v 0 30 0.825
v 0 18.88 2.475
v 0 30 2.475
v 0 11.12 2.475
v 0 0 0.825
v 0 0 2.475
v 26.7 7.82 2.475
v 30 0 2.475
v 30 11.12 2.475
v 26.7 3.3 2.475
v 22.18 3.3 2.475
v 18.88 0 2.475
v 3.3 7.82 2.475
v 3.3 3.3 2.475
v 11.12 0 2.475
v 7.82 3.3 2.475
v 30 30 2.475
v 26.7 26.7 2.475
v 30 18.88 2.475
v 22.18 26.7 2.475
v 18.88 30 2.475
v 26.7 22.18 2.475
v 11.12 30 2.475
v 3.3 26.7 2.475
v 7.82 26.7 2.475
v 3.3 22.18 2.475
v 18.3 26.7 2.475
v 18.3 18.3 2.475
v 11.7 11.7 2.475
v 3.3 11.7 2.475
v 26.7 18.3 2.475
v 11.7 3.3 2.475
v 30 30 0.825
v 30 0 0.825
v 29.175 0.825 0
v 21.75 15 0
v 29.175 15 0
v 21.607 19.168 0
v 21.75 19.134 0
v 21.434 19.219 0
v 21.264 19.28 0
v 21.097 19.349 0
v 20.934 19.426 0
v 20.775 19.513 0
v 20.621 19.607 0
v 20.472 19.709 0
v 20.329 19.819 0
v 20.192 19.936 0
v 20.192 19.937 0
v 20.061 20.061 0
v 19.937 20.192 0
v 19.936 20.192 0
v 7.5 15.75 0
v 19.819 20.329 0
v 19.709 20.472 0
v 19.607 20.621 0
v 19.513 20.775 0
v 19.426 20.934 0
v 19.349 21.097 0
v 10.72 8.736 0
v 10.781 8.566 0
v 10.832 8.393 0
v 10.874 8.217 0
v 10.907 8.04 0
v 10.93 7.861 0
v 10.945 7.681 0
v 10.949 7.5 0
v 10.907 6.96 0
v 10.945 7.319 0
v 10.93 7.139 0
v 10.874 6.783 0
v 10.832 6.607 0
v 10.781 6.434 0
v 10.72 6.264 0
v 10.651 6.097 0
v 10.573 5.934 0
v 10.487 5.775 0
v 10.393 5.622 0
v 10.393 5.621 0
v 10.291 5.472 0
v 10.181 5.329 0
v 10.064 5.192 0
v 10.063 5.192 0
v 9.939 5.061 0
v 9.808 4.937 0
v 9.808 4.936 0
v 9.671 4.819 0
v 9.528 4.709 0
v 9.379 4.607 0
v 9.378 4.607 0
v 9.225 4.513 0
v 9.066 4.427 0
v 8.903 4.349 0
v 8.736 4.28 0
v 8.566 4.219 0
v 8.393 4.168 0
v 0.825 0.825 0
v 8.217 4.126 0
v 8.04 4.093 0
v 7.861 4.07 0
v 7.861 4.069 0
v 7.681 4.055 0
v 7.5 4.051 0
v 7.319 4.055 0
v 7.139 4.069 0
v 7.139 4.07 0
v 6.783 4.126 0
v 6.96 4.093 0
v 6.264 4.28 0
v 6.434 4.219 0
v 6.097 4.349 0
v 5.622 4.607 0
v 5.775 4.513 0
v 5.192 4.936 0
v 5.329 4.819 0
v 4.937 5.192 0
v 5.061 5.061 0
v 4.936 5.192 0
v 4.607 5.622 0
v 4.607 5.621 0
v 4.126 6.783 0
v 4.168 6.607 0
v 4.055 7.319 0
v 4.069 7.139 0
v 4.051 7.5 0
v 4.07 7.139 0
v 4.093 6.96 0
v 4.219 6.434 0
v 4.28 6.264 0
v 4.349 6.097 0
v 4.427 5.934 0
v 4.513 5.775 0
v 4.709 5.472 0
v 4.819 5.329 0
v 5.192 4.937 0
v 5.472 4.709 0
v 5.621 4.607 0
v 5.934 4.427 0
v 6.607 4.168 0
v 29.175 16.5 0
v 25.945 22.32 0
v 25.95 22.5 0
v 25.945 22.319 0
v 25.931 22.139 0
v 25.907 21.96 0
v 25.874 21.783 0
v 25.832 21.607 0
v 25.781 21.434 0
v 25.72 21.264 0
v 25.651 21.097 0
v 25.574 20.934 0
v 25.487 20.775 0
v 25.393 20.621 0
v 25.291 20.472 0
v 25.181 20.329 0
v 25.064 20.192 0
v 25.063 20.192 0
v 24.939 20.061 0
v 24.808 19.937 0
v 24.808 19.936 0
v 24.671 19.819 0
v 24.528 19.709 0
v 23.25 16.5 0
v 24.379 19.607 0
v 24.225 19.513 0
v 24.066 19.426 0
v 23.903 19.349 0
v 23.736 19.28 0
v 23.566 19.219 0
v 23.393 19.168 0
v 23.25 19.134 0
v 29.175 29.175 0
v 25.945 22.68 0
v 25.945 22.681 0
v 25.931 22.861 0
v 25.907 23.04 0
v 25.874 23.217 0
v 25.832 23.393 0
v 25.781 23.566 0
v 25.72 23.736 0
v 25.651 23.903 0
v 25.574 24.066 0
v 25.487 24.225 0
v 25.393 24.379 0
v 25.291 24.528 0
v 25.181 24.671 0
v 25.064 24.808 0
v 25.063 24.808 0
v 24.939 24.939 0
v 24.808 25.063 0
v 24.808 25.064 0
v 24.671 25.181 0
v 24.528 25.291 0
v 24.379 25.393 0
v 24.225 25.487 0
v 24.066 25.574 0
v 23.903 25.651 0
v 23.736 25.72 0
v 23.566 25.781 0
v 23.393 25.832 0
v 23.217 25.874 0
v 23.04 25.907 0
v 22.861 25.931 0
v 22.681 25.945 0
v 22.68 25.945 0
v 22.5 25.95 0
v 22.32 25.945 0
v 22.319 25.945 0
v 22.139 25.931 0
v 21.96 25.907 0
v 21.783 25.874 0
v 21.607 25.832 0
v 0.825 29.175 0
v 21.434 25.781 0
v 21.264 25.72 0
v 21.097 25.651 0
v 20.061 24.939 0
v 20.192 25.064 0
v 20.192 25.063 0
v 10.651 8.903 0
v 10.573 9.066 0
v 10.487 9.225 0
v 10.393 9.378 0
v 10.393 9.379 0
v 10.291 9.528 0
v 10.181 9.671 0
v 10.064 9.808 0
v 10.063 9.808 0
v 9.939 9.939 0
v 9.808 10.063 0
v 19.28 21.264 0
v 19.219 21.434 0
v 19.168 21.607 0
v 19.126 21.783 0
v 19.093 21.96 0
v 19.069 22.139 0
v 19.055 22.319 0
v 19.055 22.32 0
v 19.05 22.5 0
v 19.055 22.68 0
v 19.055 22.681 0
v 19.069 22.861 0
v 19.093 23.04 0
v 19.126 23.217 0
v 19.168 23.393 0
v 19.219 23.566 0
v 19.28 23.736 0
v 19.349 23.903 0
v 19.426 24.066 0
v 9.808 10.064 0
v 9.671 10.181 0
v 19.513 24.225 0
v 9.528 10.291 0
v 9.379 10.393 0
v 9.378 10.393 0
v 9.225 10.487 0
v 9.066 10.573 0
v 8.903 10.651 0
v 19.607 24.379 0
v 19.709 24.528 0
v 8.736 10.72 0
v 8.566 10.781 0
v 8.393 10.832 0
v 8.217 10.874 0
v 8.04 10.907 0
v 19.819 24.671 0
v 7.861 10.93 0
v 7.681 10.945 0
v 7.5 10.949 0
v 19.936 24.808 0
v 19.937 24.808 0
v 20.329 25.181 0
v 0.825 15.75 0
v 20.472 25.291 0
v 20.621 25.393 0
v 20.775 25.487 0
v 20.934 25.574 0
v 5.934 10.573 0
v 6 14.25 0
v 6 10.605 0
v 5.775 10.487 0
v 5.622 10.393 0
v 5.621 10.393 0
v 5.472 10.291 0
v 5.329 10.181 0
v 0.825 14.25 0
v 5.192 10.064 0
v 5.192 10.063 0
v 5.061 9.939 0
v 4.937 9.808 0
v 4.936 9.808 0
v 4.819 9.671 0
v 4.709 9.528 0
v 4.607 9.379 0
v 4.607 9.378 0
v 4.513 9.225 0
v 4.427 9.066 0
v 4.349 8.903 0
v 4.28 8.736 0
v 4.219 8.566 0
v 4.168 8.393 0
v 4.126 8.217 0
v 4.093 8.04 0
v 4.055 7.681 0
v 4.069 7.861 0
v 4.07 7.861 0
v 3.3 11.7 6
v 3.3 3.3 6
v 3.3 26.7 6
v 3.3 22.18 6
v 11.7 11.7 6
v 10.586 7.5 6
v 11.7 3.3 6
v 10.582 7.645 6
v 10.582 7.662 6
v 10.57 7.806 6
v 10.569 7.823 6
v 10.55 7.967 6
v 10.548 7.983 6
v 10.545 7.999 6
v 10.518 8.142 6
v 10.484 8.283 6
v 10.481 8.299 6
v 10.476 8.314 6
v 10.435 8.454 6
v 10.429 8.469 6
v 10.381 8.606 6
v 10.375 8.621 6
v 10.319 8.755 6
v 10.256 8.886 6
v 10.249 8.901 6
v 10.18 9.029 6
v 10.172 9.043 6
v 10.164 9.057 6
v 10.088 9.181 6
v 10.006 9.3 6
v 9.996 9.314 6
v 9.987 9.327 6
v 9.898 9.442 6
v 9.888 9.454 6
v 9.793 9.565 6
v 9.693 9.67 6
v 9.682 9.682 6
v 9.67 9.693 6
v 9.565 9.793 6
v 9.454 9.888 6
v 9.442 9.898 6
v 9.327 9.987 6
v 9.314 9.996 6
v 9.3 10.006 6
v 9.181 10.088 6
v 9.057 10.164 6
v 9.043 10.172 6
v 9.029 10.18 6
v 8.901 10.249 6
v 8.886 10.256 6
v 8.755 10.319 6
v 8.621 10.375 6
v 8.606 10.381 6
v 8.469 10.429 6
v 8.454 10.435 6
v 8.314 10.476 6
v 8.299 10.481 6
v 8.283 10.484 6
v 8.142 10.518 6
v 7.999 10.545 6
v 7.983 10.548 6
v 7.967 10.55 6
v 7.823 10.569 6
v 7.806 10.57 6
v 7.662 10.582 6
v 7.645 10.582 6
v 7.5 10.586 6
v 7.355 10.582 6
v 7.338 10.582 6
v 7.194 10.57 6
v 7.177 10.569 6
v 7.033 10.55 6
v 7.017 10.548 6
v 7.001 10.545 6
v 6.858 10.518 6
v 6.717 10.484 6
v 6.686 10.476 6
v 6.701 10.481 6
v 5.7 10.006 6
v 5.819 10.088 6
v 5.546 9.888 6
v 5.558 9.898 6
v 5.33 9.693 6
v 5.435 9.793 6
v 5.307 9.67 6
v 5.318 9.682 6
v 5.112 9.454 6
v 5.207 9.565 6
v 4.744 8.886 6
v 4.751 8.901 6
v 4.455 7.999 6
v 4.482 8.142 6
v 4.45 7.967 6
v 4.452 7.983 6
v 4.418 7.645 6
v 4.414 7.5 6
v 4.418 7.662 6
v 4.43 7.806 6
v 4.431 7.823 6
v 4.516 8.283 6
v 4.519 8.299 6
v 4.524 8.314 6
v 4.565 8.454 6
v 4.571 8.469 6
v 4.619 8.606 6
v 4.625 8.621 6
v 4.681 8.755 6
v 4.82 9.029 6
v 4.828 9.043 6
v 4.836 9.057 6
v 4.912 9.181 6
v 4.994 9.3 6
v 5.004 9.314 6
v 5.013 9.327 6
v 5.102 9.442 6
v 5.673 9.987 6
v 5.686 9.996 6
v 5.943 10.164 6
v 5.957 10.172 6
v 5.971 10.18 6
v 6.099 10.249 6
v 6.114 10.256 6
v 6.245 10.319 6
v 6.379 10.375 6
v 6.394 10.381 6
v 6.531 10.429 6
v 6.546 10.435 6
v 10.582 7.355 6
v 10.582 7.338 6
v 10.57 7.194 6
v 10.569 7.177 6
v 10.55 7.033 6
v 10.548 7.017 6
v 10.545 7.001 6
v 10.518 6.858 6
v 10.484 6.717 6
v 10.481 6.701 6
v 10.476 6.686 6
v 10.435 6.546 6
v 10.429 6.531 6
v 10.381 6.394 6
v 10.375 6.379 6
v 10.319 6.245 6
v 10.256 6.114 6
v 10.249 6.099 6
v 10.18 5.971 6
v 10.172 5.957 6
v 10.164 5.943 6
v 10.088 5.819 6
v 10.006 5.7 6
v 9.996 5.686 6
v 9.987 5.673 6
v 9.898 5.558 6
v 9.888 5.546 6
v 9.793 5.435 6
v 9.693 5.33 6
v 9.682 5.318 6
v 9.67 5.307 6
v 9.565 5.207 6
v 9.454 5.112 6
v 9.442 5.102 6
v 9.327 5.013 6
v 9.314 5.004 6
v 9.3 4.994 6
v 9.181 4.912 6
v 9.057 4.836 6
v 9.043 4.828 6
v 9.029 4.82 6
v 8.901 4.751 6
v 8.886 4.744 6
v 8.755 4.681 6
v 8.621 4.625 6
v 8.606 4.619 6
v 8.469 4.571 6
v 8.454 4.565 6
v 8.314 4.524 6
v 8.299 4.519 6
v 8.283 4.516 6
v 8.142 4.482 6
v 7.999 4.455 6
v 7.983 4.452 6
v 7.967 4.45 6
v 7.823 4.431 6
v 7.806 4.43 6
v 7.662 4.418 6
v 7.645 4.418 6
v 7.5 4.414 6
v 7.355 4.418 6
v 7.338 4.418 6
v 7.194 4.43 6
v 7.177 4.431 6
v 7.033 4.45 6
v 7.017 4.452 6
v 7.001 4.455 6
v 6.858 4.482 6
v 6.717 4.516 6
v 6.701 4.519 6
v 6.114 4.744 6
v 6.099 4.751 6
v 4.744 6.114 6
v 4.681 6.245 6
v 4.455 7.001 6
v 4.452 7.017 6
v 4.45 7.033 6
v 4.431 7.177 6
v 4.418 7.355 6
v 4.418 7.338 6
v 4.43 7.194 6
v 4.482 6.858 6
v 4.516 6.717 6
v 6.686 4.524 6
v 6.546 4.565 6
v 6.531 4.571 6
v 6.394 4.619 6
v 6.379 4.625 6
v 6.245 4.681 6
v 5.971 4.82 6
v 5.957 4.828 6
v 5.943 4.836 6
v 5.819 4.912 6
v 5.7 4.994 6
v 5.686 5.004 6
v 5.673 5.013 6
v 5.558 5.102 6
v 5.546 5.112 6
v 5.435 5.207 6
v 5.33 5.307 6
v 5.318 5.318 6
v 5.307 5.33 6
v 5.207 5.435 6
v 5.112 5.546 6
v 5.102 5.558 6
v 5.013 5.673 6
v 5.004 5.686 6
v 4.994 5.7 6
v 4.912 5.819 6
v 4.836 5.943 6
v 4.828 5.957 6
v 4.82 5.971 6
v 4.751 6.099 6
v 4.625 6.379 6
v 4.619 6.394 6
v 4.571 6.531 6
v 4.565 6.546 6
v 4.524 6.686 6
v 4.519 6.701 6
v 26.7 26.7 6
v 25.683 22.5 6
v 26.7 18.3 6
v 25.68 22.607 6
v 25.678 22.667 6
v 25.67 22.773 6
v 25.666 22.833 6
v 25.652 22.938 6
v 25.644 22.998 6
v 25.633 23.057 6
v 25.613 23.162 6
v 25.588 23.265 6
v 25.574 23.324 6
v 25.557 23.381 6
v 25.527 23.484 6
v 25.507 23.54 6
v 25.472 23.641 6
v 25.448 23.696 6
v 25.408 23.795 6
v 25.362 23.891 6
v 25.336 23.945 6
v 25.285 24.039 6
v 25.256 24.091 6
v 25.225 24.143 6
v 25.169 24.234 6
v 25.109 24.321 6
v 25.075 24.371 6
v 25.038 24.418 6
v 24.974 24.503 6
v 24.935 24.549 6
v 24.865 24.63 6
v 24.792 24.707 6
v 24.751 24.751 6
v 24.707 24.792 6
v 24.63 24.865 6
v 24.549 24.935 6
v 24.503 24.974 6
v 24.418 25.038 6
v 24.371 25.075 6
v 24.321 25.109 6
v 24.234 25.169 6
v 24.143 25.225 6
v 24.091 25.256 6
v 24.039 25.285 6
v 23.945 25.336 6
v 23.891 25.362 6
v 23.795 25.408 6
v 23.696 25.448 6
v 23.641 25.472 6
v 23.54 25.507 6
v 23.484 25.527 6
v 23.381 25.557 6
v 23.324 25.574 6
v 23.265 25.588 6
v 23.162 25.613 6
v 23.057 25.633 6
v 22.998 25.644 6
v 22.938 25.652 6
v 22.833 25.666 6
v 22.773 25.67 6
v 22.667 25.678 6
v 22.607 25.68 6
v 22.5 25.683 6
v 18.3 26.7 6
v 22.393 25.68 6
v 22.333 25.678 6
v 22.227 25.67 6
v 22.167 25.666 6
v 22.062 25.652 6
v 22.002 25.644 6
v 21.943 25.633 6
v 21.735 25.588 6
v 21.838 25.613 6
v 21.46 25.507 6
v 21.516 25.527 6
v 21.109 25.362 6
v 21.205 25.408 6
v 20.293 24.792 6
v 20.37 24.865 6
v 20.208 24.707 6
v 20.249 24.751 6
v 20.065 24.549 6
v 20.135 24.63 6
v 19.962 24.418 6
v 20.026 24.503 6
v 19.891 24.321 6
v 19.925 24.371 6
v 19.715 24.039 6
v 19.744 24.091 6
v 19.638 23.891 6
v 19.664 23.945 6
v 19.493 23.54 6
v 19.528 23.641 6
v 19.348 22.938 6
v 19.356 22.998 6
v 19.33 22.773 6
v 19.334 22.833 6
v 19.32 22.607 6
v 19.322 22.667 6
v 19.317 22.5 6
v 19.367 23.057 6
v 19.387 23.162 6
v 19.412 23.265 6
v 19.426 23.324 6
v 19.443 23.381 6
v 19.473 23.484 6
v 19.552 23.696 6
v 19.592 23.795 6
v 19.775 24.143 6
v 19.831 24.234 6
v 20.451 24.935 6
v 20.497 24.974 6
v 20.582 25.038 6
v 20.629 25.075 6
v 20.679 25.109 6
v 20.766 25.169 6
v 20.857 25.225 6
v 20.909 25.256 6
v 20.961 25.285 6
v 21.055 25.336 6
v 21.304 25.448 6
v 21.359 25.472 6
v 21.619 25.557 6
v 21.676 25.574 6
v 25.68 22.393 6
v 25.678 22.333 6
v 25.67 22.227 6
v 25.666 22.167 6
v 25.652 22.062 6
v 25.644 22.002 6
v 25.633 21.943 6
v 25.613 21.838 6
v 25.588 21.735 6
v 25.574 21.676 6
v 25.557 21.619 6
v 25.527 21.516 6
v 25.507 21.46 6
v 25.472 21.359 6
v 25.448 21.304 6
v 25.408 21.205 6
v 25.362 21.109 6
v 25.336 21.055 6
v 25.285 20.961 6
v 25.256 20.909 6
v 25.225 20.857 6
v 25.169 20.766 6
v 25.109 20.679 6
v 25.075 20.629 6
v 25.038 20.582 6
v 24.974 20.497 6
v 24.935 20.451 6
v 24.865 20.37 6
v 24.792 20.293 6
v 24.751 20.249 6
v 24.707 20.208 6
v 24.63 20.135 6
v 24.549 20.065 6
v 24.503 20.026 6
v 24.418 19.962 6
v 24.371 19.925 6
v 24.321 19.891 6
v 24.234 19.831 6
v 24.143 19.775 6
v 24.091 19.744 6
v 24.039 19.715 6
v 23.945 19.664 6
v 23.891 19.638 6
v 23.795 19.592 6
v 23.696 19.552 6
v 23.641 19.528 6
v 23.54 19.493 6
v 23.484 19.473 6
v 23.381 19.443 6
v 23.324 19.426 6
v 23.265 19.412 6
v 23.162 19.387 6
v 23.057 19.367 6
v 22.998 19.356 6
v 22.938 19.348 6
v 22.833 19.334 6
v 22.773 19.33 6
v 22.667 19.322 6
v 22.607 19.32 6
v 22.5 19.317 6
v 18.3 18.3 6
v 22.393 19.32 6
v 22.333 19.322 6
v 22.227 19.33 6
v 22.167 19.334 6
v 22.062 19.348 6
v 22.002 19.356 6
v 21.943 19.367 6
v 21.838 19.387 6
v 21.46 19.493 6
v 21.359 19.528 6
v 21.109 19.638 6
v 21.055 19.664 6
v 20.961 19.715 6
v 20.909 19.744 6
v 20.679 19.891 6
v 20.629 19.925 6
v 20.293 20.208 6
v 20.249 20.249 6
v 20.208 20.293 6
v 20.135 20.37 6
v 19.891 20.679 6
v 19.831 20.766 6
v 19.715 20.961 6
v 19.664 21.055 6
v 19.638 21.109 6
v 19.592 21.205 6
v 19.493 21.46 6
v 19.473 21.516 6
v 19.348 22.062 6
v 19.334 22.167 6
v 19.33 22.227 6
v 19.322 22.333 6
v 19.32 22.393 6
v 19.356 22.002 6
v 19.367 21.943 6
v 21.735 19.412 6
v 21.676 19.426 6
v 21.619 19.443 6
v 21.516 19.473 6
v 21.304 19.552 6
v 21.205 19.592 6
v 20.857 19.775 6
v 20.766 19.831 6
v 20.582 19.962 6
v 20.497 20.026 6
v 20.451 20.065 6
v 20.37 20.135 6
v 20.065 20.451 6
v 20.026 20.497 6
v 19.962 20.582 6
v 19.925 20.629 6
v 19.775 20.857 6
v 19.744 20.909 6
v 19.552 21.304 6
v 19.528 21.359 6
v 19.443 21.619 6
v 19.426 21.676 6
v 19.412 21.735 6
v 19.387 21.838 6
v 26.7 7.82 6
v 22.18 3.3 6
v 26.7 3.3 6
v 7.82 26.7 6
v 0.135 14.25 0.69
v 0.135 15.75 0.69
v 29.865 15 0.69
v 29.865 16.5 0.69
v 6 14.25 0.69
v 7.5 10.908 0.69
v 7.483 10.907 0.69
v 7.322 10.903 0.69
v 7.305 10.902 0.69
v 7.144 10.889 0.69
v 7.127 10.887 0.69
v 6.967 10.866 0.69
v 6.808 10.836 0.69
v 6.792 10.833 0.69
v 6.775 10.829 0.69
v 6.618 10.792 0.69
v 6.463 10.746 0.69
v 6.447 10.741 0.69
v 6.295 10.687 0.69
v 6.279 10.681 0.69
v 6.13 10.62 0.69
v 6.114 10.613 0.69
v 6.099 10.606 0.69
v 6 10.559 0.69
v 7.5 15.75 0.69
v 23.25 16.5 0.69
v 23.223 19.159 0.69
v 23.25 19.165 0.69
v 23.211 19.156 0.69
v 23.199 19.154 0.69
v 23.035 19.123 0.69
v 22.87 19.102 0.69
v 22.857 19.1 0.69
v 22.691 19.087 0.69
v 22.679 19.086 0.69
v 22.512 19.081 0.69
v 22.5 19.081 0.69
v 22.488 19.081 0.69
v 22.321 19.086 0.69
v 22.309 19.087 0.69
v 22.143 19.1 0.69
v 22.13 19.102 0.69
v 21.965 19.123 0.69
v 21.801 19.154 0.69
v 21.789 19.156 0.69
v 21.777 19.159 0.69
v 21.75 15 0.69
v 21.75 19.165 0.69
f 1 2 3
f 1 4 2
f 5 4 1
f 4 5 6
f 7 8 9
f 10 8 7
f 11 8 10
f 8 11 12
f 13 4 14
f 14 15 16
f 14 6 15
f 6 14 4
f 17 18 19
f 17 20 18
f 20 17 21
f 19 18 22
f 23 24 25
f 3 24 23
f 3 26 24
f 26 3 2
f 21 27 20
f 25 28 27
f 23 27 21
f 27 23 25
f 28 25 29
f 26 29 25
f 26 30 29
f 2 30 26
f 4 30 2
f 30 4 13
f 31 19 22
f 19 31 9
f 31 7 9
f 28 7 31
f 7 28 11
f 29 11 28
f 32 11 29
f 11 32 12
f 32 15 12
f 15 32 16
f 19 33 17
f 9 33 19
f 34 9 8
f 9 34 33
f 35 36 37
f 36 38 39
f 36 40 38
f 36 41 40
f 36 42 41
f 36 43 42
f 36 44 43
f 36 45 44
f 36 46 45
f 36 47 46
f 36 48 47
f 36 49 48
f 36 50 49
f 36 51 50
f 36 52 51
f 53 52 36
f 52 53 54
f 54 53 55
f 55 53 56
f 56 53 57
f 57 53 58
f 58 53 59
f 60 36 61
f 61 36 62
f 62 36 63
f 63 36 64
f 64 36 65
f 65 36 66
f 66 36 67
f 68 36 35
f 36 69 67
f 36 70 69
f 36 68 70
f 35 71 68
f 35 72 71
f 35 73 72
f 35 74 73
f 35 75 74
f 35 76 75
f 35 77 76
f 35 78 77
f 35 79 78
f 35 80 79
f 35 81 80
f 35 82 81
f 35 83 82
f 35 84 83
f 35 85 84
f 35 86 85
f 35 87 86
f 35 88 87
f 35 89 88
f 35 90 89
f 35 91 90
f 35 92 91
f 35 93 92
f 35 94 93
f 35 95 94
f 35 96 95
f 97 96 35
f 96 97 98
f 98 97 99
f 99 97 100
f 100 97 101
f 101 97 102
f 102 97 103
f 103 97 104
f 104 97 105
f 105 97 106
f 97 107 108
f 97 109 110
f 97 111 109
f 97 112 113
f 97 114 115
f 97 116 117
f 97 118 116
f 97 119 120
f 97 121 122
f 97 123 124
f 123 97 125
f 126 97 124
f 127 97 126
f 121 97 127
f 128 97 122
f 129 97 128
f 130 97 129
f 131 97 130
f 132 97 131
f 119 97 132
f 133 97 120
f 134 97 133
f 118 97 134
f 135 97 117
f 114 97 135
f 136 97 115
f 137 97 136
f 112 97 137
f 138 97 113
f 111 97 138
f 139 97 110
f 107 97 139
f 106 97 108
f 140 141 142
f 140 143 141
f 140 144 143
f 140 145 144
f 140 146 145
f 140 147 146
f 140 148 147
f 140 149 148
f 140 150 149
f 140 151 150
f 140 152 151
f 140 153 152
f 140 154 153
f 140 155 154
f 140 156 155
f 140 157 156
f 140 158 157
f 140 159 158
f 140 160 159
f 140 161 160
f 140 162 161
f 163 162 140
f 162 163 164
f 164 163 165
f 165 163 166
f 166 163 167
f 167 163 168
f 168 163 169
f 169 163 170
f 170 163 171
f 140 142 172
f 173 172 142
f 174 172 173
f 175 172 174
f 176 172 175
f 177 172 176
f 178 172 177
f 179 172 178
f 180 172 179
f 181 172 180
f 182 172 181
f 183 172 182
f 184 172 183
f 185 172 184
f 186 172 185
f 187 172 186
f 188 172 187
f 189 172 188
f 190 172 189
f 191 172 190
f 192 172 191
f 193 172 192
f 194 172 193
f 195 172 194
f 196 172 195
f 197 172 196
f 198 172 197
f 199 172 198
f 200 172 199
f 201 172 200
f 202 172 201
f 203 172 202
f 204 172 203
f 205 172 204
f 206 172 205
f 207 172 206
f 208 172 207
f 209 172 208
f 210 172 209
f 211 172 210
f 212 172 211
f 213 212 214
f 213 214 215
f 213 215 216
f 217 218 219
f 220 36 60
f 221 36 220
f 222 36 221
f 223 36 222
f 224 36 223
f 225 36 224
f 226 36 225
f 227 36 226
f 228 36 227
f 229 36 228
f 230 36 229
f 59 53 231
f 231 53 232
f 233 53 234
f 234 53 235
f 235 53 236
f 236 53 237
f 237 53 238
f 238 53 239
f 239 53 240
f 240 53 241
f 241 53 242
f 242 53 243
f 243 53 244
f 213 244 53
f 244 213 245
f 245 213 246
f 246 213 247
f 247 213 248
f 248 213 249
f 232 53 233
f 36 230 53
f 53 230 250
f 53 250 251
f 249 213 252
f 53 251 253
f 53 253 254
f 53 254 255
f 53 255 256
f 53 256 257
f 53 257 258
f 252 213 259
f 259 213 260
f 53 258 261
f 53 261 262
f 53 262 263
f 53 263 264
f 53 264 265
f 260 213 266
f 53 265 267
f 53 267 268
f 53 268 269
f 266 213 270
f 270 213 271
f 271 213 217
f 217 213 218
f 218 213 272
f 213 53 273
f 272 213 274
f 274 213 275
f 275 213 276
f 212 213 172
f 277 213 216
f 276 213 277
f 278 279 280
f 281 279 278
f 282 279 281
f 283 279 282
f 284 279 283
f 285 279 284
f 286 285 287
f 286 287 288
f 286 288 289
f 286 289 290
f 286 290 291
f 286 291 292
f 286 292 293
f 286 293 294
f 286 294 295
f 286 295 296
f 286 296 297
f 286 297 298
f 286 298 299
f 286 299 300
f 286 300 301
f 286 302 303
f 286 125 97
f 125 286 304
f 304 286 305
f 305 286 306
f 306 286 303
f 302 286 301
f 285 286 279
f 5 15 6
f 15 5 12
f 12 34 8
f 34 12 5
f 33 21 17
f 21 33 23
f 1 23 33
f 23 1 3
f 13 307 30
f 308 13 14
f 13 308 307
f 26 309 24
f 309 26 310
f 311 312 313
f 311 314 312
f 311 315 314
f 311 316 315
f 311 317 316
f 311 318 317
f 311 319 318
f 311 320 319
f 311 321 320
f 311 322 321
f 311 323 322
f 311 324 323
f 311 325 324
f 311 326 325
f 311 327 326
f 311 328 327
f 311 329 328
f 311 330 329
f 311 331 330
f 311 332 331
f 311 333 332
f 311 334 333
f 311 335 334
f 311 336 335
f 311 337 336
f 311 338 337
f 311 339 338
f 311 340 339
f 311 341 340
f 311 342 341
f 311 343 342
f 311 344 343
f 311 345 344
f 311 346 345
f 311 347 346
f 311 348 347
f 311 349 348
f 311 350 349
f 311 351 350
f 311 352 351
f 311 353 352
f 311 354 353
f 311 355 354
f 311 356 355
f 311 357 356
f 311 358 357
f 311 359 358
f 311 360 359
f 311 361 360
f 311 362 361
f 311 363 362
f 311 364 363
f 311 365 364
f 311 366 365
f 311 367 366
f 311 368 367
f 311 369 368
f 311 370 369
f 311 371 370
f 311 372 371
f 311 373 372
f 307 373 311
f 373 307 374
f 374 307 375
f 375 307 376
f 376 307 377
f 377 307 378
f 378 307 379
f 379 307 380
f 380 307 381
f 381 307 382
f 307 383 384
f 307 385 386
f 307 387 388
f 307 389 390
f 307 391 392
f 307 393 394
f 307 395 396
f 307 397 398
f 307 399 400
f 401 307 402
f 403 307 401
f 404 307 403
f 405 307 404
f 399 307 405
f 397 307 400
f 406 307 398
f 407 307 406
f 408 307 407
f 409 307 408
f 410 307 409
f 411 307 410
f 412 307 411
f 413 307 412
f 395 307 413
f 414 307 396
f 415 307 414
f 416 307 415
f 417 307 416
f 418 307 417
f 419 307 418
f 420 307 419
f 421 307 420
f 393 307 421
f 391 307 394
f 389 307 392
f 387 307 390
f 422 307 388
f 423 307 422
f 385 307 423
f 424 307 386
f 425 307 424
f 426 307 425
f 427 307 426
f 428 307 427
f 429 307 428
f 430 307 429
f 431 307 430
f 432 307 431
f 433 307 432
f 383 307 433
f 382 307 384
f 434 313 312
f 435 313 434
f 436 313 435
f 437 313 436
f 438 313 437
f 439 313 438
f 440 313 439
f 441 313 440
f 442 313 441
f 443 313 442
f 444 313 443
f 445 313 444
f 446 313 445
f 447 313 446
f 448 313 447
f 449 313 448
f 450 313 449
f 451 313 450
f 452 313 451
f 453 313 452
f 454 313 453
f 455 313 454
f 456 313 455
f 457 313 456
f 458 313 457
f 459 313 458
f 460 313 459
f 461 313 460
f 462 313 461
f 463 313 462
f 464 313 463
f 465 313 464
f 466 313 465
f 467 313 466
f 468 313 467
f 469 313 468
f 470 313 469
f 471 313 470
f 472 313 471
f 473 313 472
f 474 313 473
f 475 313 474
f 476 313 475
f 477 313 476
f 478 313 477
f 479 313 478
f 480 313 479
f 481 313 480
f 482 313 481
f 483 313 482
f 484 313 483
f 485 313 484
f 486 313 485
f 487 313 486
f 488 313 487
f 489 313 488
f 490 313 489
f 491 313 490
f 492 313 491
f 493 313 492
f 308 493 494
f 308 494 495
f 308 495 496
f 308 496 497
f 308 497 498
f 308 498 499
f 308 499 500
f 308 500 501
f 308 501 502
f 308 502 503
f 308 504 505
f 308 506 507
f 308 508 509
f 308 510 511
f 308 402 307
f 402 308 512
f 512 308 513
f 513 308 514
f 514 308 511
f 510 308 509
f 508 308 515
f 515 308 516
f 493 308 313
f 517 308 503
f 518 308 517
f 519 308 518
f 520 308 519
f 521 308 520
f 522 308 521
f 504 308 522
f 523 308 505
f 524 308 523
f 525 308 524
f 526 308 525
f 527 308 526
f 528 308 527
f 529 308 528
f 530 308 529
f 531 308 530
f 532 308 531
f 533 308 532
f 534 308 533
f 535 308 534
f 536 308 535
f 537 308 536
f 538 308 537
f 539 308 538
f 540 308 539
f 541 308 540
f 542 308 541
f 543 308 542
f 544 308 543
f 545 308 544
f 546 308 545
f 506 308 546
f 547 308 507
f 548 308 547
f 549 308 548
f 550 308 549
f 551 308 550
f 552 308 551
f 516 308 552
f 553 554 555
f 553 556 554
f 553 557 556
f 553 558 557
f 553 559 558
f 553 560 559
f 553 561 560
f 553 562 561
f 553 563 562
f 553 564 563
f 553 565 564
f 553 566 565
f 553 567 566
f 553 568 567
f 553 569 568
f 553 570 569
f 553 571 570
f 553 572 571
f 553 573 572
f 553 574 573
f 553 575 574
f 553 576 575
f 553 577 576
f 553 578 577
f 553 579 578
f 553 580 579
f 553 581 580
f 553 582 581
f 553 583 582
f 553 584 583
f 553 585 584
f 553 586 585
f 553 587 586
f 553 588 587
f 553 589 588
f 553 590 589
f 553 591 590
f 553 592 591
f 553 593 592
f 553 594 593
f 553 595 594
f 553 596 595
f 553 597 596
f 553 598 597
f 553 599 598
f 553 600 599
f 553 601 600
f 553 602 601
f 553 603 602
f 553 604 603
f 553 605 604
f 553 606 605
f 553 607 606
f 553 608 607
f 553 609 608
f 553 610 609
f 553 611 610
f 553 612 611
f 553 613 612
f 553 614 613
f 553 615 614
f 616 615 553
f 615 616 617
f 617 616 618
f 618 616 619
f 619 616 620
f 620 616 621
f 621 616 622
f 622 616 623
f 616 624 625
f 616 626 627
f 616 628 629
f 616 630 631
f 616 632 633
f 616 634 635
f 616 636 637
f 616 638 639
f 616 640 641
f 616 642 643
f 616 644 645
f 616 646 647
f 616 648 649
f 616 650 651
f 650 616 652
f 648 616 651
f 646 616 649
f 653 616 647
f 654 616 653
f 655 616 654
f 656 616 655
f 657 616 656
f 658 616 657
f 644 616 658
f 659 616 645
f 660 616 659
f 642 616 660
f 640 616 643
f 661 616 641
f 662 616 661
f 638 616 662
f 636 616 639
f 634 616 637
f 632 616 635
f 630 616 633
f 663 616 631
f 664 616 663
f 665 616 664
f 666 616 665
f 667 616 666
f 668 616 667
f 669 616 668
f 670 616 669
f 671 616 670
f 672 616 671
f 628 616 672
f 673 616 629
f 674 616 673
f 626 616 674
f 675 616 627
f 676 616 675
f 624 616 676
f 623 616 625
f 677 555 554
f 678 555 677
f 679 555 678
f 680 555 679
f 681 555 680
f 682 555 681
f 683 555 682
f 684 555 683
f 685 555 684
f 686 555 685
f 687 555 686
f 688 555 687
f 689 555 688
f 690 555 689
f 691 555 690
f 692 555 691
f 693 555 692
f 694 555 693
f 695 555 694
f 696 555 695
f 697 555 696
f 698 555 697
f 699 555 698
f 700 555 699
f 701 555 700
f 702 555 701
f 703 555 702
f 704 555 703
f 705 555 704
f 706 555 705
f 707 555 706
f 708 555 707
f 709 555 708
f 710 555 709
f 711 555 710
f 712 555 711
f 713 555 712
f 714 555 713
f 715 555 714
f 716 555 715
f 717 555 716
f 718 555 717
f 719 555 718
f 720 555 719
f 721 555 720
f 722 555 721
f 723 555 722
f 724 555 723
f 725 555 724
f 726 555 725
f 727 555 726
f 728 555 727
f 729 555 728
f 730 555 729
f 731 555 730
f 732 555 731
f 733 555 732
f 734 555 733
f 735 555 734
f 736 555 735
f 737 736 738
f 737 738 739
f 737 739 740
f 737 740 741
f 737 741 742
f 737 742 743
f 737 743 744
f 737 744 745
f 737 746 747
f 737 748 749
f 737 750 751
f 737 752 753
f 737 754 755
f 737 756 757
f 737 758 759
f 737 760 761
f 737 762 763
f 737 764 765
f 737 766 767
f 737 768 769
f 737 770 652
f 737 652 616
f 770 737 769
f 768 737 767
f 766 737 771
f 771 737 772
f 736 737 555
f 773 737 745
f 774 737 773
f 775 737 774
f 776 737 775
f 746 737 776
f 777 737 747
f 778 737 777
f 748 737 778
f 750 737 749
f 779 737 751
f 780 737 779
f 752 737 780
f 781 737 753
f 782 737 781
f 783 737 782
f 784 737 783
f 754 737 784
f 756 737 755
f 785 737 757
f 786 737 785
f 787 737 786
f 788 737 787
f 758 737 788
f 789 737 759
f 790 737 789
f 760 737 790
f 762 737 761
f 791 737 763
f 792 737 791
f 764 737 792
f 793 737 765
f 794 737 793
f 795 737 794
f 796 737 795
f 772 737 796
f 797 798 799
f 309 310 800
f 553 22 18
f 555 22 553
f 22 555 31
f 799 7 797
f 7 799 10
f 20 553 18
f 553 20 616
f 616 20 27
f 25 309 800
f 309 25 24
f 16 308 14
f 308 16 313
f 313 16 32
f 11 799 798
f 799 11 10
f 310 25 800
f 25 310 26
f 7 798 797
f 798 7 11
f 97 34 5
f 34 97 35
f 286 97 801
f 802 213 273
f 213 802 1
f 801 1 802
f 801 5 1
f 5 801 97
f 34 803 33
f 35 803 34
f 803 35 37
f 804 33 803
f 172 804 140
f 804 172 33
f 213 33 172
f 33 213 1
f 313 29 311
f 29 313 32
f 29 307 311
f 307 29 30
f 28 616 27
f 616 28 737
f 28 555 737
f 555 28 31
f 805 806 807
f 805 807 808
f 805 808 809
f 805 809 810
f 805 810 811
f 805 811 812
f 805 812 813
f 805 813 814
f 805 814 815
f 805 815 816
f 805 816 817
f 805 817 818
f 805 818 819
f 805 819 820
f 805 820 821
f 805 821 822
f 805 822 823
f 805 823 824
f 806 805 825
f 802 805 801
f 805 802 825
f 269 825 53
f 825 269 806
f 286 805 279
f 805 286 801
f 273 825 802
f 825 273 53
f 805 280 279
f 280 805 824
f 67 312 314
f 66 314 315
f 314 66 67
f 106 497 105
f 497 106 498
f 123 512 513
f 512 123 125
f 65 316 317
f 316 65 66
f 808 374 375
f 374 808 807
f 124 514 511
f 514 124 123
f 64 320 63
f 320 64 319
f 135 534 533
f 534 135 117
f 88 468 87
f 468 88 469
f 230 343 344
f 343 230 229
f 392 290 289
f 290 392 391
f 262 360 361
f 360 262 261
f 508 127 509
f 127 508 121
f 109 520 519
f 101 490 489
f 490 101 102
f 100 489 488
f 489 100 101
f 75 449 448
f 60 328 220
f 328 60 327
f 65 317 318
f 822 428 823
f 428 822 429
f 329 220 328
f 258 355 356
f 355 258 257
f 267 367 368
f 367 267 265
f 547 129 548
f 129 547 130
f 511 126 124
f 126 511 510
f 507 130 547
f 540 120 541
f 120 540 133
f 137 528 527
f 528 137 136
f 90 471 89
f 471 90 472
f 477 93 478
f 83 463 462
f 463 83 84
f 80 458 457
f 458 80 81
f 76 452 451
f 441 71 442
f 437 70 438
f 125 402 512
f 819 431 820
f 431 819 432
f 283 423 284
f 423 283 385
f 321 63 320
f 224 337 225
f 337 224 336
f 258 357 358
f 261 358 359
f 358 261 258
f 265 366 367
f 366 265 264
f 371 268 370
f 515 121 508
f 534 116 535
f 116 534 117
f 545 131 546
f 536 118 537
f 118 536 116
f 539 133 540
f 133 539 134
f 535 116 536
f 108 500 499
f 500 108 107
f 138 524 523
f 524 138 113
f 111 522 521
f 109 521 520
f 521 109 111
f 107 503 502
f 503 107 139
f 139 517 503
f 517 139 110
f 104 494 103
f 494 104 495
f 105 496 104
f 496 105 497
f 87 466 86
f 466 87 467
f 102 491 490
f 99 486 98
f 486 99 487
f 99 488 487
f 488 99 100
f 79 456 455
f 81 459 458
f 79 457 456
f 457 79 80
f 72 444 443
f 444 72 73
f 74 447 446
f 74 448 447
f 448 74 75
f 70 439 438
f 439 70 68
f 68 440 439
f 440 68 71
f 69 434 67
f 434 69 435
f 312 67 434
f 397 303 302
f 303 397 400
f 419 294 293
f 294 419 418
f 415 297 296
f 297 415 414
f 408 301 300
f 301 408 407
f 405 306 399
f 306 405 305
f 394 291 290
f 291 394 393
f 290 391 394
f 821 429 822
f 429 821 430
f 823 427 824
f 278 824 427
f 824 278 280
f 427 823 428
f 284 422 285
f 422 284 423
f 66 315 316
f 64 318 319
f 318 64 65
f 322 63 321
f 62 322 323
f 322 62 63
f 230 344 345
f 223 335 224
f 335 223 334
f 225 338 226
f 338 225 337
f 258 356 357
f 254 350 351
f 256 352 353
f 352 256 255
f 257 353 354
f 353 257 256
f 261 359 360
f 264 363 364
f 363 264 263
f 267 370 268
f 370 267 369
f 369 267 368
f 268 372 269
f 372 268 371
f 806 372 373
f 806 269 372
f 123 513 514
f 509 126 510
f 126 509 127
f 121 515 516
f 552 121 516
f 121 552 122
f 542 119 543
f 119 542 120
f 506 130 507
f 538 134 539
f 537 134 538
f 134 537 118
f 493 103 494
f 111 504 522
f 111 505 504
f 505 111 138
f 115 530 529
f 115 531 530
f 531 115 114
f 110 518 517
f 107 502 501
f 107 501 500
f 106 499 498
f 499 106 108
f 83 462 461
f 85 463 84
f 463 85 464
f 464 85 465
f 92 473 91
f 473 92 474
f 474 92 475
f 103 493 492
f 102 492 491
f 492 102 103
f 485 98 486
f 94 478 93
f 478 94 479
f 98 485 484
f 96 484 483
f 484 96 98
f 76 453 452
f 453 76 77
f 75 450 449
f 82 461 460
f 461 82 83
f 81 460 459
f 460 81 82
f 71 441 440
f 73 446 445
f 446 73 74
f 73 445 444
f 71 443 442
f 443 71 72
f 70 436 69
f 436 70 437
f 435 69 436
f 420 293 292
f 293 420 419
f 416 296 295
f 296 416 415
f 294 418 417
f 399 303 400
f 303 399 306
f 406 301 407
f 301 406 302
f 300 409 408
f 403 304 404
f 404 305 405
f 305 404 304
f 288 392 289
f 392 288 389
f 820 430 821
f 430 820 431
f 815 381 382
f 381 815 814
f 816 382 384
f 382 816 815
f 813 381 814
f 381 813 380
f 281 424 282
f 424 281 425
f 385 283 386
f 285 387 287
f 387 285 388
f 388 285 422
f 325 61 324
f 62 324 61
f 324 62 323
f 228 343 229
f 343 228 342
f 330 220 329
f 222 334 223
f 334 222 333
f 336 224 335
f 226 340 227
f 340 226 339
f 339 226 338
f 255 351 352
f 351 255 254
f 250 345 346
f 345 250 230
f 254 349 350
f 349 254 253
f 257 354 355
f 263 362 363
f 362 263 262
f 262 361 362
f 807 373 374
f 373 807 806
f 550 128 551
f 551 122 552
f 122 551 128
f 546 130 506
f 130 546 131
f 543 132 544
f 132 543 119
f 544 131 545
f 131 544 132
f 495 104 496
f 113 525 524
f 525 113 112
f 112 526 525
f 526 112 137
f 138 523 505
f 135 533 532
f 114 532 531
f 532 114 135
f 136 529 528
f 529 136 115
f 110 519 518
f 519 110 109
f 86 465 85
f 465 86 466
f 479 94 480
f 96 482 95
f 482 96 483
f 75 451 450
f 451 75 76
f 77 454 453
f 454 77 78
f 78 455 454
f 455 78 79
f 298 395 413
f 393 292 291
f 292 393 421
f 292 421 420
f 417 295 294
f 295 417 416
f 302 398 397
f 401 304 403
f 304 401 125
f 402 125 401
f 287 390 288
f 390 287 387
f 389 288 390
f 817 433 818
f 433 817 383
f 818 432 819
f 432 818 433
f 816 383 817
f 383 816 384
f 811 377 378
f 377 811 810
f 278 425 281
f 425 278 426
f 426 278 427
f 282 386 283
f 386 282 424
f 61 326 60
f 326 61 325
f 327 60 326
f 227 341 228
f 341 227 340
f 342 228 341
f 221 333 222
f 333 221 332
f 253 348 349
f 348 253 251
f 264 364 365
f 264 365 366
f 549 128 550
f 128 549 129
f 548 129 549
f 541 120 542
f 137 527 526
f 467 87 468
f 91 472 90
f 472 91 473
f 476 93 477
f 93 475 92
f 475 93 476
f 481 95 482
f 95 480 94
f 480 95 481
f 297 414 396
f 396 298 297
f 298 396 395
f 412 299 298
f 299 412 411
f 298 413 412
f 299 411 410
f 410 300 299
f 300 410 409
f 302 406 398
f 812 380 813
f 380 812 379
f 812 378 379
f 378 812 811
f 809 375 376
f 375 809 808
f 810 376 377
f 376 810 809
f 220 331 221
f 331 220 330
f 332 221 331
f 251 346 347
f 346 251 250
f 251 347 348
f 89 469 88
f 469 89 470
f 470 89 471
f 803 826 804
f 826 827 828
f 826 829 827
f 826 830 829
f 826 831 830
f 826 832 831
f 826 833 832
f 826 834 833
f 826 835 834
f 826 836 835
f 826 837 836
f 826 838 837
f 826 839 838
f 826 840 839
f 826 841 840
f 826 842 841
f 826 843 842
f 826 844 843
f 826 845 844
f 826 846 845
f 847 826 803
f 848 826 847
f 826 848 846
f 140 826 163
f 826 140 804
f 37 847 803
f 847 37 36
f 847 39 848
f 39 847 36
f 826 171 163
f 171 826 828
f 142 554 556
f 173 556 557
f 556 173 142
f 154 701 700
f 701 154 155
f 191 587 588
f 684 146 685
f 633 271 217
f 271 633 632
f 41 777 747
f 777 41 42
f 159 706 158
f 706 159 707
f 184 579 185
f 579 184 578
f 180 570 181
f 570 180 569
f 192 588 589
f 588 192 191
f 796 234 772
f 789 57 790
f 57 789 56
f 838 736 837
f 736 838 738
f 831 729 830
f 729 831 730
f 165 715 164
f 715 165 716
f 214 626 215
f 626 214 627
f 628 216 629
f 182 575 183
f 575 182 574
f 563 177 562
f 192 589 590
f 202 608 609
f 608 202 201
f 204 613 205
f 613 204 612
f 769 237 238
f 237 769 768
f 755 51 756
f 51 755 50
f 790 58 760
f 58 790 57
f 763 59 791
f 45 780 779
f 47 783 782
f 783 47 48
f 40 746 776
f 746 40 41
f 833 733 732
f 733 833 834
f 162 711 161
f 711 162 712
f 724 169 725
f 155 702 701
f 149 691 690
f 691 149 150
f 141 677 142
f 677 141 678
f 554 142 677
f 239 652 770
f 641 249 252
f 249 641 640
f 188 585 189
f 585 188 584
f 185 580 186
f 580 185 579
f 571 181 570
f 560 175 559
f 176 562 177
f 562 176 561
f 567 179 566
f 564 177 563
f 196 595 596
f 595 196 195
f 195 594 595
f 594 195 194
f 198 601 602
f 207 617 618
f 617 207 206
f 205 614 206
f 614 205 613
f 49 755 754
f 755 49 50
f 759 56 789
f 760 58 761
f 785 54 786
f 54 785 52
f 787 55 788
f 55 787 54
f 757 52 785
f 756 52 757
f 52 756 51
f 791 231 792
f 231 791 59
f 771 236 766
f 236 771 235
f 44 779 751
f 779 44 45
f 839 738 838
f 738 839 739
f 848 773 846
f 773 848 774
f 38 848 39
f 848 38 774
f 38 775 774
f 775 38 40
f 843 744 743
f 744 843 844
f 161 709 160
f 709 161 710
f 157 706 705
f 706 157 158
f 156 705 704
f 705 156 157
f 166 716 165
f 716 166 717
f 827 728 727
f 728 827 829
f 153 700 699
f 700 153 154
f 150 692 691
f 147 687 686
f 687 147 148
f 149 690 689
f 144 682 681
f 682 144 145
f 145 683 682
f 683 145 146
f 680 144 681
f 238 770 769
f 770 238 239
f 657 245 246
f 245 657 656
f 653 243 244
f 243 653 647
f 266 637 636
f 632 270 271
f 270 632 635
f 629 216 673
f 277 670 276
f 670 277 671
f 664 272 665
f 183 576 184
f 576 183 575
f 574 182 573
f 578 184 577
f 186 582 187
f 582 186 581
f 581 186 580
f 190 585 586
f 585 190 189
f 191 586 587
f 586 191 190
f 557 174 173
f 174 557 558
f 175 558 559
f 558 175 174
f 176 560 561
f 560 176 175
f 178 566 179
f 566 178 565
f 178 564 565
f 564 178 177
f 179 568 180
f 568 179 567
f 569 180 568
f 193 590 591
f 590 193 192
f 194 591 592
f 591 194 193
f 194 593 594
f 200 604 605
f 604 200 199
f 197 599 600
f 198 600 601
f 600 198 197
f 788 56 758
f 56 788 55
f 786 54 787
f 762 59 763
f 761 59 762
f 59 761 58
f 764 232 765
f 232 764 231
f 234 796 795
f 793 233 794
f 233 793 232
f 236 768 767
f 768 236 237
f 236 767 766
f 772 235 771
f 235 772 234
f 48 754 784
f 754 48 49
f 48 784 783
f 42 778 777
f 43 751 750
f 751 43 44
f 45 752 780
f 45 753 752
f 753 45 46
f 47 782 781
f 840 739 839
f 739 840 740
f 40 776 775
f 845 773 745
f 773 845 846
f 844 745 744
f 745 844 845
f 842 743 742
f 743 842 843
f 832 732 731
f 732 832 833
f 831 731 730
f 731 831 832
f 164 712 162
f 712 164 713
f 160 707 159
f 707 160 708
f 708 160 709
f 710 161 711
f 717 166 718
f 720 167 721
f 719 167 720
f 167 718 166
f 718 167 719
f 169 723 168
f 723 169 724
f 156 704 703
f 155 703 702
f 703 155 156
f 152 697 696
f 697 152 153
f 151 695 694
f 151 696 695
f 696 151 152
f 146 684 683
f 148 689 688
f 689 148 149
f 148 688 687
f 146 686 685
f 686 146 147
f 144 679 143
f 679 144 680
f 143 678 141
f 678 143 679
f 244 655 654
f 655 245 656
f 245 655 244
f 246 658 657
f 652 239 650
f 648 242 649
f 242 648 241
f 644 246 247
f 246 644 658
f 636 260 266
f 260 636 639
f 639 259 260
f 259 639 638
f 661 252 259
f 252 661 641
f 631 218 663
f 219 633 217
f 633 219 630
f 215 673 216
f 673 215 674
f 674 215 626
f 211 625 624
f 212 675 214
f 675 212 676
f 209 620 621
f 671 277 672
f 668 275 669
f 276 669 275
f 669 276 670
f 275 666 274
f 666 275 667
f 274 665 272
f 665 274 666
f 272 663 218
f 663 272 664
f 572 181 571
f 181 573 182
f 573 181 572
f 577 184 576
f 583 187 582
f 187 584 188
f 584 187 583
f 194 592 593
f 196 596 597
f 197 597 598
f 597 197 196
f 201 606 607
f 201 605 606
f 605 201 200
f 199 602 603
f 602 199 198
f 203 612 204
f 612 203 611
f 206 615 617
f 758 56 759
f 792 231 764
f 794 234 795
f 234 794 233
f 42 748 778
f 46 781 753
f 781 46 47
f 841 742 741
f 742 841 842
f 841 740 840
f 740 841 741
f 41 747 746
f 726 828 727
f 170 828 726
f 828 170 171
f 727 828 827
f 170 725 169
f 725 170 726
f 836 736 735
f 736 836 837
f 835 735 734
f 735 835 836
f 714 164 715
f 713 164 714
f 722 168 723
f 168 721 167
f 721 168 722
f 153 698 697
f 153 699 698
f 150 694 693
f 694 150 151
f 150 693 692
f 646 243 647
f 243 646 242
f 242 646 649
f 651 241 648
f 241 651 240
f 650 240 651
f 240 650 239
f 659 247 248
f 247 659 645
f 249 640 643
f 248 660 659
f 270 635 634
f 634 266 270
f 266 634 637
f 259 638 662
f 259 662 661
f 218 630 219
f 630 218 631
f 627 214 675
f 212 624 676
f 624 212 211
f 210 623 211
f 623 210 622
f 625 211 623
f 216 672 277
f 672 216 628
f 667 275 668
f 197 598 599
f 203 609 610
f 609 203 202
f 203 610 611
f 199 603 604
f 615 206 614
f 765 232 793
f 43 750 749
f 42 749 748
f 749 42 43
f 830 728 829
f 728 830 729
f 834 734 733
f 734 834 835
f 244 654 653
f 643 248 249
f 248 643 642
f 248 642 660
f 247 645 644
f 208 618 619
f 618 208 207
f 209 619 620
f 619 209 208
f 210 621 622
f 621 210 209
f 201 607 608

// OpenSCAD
// file: settings.scad
cube_width=30;
cube_height=16;
cube_thickness=3.3;

cap_width=30;
cap_height=6;
cap_thickness=3.3;

glyph_depth=0.7;
glyph_thickness=1.5;

photo_resitor_hole_r = 3.1;
spring_contact_hole_r = 3.35;
// file: cap_1x1.scad
include <settings.scad>

module cap_1x1(width, height, thickness, holes_mask)
{
    width1=width-thickness;
    difference()
    {
        union()
        {
            cube([width, width, thickness*3/4]);
            translate([thickness,thickness,0])cube([width-2*thickness, width-2*thickness, height]);
        }
        union()
        {
            translate([width/2,width/2,0])rotate([0,0,45])translate([-width1/2,-width1/2,thickness*3/4]) cube([width1,width1,height]);
                        //corners
            translate([0,0.25*thickness,0])rotate([45,0,0]) translate([-0.5*width, -width, -0.5*height]) cube([2*width, width, 2*height]);
            translate([0.25*thickness,0,0]) rotate([0,-45,0]) translate([-width, -0.5*width, -0.5*height]) cube([width, 2*width, 2*height]);
            translate([width-0.25*thickness,0,0]) rotate([0,45,0]) translate([0, 0, -0.5*height]) cube([width, 2*width, 2*height]);
            translate([0,width-0.25*thickness,0]) rotate([-45,0,0]) translate([-0.5*width, 0, -0.5*height]) cube([2*width, width, 2*height]);
            
            if (holes_mask >= 8)
            {
                translate([width/2, thickness-1.5, -0.5]) cylinder(r=1.15, h=height*1.5, $fn=80);
            }
            if ((holes_mask%8) >= 4)
            {
                translate([width/2, width-thickness+1.5, -0.5]) cylinder(r=1.15, h=height*1.5, $fn=80);
            }
            if ((holes_mask%4)>= 2)
            {
                translate([thickness-1.5, width/2, -0.5]) cylinder(r=1.15, h=height*1.5, $fn=80);
            }
            if (holes_mask%2 >= 1)
            {
                translate([width-thickness+1.5, width/2, -0.5]) cylinder(r=1.15, h=height*1.5, $fn=80);
            }
        }
    }
}

cap_1x1(cap_width, cap_height, cap_thickness, 9);
//ring(10,1,1);
//arrow(1, 20, 3, 1);
//transistor_npn(30, 1, 1);
// main file
use <cap_1x1.scad>
include <settings.scad>

module cap_1x1_wireIooI(width, height, thickness)
{
    hd = spring_contact_hole_r*2+1.7;
    cr1 = spring_contact_hole_r+0.1;
    cr2 = spring_contact_hole_r-0.3;
    difference()
    {
        union()
        {
            cap_1x1(width, height, thickness, 0);
            translate([width/4-hd/2,width/4-hd/2,0]) cube([hd,hd, height]);
            translate([3*width/4-hd/2,3*width/4-hd/2,0]) cube([hd, hd,height]);
        }
	    
        translate([0,(width-glyph_thickness)/2,-0.01]) cube([width/4, glyph_thickness, glyph_depth]);

        
        translate([width/4-glyph_thickness,width/4,-0.01]) cube([glyph_thickness, width/4, glyph_depth]);

        translate([width/4,width/4,-0.01])cylinder(r1=cr1, r2=cr2, h=height*1.1, $fn=120);

        translate([3*width/4,width/2,-0.01]) cube([width/4, glyph_thickness, glyph_depth]);

        translate([3*width/4-glyph_thickness/2,width/2,-0.01]) cube([glyph_thickness, width/4, glyph_depth]);
        
        translate([3*width/4,3*width/4,-0.01])cylinder(r1=cr1, r2=cr2, h=1.5*height, $fn=120);
    }
}

cap_1x1_wireIooI(cap_width, cap_height, cap_thickness);
